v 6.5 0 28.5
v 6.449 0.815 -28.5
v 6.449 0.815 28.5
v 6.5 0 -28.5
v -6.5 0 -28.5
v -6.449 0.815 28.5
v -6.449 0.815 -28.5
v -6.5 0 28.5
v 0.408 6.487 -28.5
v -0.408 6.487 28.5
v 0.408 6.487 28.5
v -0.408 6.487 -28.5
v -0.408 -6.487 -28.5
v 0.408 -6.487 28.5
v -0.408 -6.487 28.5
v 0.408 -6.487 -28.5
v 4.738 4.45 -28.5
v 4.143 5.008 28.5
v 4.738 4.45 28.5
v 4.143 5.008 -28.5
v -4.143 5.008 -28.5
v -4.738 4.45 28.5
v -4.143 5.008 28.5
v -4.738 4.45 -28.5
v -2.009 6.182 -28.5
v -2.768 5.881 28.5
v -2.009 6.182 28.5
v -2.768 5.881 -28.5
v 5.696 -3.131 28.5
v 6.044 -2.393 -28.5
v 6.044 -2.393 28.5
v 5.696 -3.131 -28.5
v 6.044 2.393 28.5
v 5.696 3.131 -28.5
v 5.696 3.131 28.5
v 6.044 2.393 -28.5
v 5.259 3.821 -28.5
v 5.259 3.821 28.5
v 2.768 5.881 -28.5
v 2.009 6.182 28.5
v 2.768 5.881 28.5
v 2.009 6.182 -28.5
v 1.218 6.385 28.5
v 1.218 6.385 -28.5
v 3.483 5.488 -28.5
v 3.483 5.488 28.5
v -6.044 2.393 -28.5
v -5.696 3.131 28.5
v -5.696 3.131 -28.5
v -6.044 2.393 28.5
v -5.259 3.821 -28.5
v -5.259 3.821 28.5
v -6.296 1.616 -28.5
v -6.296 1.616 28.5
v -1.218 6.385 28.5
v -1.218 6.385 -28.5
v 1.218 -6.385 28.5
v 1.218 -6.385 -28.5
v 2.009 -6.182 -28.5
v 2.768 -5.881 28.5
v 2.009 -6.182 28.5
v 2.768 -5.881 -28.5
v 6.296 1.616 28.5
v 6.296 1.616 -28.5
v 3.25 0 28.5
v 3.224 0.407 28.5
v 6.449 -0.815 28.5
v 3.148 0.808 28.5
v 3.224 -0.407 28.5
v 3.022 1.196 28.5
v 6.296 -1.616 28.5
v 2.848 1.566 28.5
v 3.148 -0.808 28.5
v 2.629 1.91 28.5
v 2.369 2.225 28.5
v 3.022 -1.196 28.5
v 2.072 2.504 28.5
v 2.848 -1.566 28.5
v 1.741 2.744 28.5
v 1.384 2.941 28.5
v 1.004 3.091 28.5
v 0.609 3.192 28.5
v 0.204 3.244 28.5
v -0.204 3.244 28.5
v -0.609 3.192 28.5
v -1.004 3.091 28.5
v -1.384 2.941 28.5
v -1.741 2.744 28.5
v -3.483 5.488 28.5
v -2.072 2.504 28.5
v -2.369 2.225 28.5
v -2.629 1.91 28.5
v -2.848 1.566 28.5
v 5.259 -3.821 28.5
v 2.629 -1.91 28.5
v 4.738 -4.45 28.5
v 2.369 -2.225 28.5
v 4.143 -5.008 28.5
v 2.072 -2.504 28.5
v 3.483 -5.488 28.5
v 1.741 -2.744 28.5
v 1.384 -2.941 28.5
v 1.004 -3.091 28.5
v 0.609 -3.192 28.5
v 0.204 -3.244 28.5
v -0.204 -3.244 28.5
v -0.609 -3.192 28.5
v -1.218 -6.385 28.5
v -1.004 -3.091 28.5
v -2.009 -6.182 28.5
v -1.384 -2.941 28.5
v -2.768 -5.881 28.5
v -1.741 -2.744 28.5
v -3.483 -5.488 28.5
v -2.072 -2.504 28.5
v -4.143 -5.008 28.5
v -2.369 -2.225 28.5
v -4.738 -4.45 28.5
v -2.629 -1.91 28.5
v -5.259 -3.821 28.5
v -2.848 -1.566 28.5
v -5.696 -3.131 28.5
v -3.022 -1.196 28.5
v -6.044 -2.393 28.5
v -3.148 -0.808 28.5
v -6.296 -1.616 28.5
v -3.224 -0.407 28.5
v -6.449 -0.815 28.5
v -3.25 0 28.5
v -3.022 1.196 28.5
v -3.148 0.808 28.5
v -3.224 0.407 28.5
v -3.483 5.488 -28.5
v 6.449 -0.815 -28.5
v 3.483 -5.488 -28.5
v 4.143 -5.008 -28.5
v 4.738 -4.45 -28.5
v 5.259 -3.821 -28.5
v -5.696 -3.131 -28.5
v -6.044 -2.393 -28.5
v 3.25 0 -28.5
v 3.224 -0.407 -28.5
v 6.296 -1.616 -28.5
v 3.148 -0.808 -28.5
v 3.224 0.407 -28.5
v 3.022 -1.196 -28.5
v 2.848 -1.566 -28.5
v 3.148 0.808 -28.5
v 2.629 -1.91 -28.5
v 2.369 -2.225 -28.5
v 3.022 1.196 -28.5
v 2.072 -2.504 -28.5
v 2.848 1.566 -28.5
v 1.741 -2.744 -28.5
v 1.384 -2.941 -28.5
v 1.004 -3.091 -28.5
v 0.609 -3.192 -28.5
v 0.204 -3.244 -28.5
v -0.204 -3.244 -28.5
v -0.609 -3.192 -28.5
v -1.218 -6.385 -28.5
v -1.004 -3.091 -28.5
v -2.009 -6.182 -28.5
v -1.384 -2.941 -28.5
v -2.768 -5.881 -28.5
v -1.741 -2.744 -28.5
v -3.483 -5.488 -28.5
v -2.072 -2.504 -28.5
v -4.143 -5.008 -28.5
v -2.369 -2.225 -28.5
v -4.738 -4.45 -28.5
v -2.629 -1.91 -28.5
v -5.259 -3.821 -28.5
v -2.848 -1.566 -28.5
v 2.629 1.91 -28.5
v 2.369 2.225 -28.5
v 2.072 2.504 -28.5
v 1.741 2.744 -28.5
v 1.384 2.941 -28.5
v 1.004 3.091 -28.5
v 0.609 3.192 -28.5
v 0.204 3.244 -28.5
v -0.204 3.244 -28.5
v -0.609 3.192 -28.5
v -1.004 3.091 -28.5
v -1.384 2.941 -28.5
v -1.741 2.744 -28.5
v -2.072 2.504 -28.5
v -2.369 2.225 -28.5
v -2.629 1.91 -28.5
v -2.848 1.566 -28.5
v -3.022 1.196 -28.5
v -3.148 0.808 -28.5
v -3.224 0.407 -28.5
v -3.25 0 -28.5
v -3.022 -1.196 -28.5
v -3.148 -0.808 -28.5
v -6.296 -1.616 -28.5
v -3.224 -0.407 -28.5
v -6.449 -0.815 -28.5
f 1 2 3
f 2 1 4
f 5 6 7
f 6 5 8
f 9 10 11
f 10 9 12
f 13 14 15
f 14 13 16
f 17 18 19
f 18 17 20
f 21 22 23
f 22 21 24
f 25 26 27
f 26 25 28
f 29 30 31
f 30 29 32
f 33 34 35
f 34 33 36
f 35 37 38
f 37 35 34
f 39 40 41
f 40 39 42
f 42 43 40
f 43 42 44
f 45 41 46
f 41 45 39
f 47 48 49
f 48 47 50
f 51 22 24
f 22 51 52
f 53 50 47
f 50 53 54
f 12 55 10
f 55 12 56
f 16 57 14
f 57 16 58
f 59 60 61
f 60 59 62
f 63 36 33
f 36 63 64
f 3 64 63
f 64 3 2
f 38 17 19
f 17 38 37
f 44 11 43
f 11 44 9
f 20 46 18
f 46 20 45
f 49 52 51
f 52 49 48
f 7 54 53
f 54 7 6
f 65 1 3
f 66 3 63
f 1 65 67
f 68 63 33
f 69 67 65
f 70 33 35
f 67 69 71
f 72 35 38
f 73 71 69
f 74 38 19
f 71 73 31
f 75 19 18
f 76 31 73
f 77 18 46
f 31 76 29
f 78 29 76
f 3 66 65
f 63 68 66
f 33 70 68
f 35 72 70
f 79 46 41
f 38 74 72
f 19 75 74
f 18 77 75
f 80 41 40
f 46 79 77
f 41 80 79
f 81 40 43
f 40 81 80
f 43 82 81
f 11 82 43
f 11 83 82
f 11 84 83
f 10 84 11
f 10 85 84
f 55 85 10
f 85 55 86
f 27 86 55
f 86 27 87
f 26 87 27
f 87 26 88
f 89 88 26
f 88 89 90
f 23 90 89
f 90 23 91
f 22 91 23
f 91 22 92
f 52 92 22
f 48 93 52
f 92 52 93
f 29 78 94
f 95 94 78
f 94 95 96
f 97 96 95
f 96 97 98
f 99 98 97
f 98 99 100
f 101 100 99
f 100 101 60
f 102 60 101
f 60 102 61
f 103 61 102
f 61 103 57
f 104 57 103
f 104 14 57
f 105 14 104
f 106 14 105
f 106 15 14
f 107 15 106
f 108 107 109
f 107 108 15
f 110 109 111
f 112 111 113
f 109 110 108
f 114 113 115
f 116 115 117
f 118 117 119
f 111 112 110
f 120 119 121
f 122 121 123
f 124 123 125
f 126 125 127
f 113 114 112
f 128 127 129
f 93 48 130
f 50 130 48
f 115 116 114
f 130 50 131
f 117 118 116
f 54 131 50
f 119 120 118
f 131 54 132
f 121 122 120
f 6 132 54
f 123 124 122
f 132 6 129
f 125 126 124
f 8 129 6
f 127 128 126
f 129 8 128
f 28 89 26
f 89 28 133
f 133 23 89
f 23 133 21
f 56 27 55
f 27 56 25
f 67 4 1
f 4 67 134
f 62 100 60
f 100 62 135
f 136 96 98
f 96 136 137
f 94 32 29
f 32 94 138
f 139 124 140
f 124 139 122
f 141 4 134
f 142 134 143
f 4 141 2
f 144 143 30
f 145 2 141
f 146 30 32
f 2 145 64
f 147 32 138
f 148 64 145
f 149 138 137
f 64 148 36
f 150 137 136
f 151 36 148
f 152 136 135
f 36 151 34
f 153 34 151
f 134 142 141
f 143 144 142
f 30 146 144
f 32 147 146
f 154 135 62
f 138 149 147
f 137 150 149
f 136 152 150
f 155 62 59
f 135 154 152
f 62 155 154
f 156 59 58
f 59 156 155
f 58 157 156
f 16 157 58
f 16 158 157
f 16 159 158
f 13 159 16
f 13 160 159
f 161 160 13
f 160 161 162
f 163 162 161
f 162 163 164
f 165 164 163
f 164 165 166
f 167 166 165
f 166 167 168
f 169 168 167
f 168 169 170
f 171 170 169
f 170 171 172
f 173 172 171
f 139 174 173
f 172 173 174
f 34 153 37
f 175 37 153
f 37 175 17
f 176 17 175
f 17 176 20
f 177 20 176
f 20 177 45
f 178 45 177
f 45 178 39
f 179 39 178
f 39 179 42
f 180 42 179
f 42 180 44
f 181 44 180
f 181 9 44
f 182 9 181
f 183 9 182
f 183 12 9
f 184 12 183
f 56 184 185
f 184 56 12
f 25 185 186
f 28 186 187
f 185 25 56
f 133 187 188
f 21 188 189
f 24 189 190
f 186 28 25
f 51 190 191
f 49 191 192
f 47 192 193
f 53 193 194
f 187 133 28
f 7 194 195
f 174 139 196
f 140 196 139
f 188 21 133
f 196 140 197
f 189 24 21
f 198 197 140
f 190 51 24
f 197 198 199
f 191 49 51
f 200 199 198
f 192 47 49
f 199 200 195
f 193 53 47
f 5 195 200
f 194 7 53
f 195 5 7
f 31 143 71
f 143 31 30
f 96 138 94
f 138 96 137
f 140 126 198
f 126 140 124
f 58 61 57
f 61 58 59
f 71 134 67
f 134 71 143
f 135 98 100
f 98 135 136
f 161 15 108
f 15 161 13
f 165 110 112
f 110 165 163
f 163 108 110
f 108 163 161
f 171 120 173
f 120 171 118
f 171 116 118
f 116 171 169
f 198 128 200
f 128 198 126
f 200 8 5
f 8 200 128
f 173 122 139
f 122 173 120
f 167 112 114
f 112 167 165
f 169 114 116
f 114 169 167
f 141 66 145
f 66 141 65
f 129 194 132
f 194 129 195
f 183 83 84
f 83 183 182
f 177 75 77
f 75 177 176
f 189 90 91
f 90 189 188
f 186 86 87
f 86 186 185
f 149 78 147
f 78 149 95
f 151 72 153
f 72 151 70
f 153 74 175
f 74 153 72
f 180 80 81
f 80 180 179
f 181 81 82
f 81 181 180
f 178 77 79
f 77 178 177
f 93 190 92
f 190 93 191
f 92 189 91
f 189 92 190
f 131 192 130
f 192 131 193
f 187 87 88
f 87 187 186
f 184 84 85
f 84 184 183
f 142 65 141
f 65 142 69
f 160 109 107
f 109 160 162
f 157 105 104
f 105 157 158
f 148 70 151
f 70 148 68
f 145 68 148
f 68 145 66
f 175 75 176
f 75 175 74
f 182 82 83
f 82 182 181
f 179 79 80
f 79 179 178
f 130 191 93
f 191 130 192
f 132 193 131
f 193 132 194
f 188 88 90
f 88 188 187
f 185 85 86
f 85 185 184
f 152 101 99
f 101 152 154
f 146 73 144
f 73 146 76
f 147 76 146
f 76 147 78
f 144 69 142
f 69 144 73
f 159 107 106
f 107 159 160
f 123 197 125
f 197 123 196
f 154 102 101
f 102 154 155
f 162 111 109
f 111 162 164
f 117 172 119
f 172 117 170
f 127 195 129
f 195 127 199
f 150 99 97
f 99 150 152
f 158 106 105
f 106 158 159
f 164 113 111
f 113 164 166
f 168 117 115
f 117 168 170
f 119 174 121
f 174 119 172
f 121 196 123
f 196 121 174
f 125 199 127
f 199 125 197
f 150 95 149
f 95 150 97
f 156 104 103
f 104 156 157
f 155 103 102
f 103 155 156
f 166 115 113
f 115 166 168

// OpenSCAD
$fn = 50;


difference() {
	union() {
		translate(v = [0, 0, -28.5000000000]) {
			cylinder(h = 57, r = 6.5000000000);
		}
	}
	union() {
		translate(v = [0, 0, -100.0000000000]) {
			cylinder(h = 200, r = 3.2500000000);
		}
	}
}
